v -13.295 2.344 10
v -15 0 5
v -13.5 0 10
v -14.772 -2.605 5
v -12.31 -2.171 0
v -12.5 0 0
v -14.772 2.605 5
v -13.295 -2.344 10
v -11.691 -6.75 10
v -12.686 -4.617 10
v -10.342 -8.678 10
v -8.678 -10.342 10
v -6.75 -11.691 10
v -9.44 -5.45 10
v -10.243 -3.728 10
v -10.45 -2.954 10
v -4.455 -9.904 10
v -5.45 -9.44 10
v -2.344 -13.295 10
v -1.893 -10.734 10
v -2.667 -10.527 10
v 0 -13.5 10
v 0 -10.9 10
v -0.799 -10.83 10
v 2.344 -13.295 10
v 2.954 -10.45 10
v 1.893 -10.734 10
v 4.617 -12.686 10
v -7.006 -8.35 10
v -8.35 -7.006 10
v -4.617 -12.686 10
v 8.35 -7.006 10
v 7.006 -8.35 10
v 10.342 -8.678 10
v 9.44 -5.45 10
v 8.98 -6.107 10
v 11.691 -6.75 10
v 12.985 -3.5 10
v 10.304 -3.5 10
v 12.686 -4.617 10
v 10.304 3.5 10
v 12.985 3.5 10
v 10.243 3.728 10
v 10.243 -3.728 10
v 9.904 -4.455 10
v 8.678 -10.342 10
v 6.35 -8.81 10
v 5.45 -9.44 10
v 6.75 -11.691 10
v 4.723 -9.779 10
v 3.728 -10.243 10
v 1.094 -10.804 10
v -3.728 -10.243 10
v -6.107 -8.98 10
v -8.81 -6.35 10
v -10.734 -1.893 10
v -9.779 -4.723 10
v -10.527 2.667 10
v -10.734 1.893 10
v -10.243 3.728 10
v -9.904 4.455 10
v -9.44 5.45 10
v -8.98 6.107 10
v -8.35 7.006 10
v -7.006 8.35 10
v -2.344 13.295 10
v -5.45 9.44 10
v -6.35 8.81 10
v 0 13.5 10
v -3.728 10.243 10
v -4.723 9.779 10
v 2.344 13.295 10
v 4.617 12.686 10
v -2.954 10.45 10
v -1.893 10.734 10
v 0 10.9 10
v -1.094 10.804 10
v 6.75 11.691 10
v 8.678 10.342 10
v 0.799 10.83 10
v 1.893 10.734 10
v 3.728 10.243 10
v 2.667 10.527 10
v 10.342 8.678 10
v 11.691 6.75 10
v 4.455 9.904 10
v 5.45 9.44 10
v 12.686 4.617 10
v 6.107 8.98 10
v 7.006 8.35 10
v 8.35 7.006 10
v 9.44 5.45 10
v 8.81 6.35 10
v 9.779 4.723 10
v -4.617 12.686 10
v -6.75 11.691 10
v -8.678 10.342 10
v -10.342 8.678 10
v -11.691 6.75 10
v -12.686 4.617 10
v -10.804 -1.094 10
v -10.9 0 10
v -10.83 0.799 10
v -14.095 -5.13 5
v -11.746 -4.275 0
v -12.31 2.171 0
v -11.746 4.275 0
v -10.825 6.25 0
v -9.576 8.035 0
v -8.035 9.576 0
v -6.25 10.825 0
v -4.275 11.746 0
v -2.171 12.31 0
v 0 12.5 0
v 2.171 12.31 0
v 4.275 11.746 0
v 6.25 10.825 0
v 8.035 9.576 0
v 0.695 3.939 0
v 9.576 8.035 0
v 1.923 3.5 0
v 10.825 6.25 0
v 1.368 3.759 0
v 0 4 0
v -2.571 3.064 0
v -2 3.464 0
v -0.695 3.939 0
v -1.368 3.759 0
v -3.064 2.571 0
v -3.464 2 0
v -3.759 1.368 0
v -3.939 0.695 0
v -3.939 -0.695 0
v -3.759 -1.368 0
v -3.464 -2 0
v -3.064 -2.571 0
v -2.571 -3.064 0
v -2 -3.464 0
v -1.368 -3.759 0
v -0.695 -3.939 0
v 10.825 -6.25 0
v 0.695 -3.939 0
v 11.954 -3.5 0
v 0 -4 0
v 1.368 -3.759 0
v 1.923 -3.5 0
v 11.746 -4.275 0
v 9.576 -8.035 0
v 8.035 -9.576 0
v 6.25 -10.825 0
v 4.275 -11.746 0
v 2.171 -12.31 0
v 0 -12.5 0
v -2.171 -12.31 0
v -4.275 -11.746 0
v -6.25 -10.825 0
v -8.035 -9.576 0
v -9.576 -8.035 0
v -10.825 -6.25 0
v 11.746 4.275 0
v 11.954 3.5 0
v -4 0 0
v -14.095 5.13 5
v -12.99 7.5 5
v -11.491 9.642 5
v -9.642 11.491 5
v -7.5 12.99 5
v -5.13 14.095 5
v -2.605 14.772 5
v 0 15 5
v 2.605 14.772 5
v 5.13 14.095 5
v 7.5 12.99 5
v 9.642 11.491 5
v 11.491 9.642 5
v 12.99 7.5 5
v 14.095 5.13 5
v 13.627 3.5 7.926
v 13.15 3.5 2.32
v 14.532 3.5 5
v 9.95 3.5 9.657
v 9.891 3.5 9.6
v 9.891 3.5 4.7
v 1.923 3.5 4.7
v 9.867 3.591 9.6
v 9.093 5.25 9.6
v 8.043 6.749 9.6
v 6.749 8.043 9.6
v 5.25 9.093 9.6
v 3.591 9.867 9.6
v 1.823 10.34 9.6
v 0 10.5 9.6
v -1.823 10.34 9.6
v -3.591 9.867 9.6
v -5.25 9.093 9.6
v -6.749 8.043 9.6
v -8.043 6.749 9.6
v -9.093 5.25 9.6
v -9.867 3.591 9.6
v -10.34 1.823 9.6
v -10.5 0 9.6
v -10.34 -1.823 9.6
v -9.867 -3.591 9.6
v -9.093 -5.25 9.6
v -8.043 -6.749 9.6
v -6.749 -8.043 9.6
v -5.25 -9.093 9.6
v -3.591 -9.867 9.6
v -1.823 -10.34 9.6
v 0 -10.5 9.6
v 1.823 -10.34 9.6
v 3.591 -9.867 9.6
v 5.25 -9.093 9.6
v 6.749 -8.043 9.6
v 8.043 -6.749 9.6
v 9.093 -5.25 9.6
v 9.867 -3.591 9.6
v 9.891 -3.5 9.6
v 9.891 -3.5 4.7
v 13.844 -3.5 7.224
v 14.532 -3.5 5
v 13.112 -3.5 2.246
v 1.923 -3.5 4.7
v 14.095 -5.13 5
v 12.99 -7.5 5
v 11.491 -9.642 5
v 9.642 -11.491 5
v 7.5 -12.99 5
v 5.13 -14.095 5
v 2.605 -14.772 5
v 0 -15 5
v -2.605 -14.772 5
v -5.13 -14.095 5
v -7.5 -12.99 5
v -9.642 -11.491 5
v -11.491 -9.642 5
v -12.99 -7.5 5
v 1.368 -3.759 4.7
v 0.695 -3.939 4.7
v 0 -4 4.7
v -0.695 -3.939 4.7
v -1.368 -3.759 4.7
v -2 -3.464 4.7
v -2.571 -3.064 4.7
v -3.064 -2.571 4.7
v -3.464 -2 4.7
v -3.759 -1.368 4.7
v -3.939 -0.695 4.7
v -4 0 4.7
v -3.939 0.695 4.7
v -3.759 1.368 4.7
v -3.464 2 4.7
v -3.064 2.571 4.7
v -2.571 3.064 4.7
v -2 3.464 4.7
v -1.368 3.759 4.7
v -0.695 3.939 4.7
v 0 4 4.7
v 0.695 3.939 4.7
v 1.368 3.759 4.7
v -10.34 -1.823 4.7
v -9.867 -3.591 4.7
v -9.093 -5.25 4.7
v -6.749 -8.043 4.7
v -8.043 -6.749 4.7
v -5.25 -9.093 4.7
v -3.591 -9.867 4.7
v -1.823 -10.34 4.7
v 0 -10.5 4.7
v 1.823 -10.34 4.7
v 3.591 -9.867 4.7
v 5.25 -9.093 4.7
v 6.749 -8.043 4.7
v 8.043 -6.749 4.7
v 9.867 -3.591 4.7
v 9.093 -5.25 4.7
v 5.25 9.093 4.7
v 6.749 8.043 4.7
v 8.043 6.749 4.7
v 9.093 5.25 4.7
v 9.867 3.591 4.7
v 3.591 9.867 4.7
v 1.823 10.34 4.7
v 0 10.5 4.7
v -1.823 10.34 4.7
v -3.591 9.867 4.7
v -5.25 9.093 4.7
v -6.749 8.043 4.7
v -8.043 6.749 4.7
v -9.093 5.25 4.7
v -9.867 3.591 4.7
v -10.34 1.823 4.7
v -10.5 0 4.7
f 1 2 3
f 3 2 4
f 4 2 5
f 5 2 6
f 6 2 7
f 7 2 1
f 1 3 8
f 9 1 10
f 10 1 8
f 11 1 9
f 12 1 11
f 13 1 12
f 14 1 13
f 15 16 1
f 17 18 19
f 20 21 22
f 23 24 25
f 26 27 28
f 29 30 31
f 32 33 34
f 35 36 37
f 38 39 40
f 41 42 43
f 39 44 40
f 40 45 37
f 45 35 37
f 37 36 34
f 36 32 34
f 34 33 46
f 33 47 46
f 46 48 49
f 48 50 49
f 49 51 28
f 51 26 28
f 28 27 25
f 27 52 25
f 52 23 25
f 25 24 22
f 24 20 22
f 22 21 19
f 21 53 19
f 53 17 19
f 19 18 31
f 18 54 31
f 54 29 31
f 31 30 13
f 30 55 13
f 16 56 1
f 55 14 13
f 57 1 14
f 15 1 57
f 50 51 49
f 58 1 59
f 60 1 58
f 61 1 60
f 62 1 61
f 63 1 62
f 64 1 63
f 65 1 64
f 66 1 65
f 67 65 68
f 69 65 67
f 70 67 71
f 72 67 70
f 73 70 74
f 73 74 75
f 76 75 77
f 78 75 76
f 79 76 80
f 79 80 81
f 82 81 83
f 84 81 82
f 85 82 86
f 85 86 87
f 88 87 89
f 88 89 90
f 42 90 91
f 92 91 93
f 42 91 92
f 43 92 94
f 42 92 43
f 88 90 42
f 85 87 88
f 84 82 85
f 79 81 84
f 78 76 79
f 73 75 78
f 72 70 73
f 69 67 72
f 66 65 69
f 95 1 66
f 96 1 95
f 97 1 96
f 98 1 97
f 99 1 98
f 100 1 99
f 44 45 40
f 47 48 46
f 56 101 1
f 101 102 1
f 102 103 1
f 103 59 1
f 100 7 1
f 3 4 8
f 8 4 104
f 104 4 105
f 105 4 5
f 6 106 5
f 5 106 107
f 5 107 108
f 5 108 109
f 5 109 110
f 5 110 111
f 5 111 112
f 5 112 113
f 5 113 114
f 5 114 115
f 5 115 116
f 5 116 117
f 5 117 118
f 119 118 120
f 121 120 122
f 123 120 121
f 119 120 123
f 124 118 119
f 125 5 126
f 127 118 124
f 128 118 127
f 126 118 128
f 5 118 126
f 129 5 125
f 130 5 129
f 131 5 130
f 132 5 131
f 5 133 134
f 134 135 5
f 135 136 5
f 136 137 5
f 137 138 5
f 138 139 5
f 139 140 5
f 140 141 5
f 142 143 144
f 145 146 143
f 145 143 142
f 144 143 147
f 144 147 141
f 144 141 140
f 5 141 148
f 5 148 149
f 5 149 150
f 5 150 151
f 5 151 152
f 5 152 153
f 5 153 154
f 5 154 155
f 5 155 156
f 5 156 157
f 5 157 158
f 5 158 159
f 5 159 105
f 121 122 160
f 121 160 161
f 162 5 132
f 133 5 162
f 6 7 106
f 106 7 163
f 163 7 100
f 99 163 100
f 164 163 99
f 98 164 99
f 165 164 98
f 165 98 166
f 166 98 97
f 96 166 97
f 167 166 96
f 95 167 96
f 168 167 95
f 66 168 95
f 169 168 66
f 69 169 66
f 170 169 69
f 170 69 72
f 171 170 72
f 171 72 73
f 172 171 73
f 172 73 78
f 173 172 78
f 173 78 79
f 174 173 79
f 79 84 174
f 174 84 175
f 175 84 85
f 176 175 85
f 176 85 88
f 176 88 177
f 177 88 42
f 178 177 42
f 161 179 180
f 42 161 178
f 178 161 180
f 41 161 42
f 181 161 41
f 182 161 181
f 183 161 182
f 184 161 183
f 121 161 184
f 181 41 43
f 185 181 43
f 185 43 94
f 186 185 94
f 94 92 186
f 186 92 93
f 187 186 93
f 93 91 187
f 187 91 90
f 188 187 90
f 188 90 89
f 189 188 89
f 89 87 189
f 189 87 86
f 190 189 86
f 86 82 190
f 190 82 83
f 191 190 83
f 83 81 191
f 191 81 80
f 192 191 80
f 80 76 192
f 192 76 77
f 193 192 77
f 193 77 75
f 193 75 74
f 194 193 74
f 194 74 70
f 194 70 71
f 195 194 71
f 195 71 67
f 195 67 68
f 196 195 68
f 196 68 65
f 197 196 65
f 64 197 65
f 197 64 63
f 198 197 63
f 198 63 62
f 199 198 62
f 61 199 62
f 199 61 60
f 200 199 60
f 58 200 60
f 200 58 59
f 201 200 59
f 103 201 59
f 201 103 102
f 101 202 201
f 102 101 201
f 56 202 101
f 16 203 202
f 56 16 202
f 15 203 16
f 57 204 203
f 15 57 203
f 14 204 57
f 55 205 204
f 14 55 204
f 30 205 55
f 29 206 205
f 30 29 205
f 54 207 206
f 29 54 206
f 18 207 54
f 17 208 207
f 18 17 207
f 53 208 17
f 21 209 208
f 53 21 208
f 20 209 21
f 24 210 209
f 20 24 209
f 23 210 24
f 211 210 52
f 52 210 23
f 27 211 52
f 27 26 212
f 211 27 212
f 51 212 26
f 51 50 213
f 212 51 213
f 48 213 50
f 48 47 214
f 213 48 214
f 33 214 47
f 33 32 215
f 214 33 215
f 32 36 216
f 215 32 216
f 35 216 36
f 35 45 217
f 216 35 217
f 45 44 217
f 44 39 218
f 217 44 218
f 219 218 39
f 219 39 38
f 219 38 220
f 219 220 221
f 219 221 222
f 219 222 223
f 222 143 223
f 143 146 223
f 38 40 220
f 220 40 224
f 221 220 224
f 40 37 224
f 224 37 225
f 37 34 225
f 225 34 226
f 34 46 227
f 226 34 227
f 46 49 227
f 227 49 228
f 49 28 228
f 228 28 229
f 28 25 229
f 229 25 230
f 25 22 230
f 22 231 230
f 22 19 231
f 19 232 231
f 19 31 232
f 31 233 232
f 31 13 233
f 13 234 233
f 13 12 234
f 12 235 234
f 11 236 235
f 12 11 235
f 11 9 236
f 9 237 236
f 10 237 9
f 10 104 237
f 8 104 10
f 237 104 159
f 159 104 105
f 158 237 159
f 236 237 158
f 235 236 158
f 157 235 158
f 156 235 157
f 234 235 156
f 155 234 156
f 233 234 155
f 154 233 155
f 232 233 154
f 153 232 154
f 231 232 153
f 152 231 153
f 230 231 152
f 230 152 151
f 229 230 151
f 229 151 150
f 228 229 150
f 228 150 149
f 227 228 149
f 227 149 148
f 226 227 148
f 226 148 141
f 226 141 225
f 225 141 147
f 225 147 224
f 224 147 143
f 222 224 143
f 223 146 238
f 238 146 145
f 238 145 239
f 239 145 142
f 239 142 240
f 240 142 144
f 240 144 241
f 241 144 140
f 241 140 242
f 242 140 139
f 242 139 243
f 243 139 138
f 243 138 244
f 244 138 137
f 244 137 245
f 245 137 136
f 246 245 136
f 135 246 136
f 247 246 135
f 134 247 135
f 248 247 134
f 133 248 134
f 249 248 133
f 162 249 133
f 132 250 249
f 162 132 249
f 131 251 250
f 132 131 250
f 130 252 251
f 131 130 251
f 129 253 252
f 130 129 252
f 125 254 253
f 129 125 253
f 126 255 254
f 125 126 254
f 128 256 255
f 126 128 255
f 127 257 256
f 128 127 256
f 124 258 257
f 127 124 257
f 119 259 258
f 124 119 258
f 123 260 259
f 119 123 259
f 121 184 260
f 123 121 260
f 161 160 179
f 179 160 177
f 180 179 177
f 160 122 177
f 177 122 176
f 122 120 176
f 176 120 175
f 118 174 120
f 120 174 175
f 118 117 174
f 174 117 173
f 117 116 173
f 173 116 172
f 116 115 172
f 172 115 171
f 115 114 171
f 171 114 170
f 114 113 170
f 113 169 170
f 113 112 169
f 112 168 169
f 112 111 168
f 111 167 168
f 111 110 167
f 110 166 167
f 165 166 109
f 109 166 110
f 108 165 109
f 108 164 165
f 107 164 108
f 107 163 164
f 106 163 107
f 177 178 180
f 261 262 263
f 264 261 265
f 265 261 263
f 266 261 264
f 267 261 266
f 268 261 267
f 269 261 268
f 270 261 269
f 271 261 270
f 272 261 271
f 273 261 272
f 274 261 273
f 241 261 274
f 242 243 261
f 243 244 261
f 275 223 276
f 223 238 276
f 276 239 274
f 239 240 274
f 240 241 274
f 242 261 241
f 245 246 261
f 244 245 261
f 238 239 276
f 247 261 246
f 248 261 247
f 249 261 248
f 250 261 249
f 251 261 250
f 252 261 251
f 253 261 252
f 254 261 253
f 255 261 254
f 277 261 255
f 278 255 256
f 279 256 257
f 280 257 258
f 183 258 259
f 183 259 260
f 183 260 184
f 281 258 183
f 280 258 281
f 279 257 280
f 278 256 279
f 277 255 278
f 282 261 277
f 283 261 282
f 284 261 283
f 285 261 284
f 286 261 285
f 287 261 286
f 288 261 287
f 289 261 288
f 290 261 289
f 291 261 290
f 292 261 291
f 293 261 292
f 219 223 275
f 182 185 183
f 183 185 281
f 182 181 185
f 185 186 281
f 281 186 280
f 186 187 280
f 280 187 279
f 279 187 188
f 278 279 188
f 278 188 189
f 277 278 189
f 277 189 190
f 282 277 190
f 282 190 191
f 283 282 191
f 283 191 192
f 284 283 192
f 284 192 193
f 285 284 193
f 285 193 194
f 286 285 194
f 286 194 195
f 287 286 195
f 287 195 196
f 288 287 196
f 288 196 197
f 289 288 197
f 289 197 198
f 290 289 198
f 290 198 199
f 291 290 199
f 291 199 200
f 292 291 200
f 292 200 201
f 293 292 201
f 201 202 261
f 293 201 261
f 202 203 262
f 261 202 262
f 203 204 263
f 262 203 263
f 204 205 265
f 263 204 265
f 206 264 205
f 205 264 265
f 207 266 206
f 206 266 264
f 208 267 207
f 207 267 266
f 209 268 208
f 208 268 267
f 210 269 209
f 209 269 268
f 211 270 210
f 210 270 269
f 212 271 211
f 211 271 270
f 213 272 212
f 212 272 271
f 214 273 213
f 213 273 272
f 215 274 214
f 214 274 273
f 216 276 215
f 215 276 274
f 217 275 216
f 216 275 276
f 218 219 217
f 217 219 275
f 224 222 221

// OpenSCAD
// Cord support for icosahedron lamp

$fn=36;

difference()
{
	union()
	{
		cylinder(5,12.5,15);
		translate([0,0,5]) cylinder(5,15,13.5);
	}
	translate([0,0,-1]) cylinder(12,4,4); // cord center
	translate([0,0,4.7]) cylinder(6,10.5,10.5); // connecting well
	translate([0,0,9.6]) cylinder(1,10.5,11.5); // chamfer
	translate([0,-3.5,-1]) cube([16,7,12]);
}
